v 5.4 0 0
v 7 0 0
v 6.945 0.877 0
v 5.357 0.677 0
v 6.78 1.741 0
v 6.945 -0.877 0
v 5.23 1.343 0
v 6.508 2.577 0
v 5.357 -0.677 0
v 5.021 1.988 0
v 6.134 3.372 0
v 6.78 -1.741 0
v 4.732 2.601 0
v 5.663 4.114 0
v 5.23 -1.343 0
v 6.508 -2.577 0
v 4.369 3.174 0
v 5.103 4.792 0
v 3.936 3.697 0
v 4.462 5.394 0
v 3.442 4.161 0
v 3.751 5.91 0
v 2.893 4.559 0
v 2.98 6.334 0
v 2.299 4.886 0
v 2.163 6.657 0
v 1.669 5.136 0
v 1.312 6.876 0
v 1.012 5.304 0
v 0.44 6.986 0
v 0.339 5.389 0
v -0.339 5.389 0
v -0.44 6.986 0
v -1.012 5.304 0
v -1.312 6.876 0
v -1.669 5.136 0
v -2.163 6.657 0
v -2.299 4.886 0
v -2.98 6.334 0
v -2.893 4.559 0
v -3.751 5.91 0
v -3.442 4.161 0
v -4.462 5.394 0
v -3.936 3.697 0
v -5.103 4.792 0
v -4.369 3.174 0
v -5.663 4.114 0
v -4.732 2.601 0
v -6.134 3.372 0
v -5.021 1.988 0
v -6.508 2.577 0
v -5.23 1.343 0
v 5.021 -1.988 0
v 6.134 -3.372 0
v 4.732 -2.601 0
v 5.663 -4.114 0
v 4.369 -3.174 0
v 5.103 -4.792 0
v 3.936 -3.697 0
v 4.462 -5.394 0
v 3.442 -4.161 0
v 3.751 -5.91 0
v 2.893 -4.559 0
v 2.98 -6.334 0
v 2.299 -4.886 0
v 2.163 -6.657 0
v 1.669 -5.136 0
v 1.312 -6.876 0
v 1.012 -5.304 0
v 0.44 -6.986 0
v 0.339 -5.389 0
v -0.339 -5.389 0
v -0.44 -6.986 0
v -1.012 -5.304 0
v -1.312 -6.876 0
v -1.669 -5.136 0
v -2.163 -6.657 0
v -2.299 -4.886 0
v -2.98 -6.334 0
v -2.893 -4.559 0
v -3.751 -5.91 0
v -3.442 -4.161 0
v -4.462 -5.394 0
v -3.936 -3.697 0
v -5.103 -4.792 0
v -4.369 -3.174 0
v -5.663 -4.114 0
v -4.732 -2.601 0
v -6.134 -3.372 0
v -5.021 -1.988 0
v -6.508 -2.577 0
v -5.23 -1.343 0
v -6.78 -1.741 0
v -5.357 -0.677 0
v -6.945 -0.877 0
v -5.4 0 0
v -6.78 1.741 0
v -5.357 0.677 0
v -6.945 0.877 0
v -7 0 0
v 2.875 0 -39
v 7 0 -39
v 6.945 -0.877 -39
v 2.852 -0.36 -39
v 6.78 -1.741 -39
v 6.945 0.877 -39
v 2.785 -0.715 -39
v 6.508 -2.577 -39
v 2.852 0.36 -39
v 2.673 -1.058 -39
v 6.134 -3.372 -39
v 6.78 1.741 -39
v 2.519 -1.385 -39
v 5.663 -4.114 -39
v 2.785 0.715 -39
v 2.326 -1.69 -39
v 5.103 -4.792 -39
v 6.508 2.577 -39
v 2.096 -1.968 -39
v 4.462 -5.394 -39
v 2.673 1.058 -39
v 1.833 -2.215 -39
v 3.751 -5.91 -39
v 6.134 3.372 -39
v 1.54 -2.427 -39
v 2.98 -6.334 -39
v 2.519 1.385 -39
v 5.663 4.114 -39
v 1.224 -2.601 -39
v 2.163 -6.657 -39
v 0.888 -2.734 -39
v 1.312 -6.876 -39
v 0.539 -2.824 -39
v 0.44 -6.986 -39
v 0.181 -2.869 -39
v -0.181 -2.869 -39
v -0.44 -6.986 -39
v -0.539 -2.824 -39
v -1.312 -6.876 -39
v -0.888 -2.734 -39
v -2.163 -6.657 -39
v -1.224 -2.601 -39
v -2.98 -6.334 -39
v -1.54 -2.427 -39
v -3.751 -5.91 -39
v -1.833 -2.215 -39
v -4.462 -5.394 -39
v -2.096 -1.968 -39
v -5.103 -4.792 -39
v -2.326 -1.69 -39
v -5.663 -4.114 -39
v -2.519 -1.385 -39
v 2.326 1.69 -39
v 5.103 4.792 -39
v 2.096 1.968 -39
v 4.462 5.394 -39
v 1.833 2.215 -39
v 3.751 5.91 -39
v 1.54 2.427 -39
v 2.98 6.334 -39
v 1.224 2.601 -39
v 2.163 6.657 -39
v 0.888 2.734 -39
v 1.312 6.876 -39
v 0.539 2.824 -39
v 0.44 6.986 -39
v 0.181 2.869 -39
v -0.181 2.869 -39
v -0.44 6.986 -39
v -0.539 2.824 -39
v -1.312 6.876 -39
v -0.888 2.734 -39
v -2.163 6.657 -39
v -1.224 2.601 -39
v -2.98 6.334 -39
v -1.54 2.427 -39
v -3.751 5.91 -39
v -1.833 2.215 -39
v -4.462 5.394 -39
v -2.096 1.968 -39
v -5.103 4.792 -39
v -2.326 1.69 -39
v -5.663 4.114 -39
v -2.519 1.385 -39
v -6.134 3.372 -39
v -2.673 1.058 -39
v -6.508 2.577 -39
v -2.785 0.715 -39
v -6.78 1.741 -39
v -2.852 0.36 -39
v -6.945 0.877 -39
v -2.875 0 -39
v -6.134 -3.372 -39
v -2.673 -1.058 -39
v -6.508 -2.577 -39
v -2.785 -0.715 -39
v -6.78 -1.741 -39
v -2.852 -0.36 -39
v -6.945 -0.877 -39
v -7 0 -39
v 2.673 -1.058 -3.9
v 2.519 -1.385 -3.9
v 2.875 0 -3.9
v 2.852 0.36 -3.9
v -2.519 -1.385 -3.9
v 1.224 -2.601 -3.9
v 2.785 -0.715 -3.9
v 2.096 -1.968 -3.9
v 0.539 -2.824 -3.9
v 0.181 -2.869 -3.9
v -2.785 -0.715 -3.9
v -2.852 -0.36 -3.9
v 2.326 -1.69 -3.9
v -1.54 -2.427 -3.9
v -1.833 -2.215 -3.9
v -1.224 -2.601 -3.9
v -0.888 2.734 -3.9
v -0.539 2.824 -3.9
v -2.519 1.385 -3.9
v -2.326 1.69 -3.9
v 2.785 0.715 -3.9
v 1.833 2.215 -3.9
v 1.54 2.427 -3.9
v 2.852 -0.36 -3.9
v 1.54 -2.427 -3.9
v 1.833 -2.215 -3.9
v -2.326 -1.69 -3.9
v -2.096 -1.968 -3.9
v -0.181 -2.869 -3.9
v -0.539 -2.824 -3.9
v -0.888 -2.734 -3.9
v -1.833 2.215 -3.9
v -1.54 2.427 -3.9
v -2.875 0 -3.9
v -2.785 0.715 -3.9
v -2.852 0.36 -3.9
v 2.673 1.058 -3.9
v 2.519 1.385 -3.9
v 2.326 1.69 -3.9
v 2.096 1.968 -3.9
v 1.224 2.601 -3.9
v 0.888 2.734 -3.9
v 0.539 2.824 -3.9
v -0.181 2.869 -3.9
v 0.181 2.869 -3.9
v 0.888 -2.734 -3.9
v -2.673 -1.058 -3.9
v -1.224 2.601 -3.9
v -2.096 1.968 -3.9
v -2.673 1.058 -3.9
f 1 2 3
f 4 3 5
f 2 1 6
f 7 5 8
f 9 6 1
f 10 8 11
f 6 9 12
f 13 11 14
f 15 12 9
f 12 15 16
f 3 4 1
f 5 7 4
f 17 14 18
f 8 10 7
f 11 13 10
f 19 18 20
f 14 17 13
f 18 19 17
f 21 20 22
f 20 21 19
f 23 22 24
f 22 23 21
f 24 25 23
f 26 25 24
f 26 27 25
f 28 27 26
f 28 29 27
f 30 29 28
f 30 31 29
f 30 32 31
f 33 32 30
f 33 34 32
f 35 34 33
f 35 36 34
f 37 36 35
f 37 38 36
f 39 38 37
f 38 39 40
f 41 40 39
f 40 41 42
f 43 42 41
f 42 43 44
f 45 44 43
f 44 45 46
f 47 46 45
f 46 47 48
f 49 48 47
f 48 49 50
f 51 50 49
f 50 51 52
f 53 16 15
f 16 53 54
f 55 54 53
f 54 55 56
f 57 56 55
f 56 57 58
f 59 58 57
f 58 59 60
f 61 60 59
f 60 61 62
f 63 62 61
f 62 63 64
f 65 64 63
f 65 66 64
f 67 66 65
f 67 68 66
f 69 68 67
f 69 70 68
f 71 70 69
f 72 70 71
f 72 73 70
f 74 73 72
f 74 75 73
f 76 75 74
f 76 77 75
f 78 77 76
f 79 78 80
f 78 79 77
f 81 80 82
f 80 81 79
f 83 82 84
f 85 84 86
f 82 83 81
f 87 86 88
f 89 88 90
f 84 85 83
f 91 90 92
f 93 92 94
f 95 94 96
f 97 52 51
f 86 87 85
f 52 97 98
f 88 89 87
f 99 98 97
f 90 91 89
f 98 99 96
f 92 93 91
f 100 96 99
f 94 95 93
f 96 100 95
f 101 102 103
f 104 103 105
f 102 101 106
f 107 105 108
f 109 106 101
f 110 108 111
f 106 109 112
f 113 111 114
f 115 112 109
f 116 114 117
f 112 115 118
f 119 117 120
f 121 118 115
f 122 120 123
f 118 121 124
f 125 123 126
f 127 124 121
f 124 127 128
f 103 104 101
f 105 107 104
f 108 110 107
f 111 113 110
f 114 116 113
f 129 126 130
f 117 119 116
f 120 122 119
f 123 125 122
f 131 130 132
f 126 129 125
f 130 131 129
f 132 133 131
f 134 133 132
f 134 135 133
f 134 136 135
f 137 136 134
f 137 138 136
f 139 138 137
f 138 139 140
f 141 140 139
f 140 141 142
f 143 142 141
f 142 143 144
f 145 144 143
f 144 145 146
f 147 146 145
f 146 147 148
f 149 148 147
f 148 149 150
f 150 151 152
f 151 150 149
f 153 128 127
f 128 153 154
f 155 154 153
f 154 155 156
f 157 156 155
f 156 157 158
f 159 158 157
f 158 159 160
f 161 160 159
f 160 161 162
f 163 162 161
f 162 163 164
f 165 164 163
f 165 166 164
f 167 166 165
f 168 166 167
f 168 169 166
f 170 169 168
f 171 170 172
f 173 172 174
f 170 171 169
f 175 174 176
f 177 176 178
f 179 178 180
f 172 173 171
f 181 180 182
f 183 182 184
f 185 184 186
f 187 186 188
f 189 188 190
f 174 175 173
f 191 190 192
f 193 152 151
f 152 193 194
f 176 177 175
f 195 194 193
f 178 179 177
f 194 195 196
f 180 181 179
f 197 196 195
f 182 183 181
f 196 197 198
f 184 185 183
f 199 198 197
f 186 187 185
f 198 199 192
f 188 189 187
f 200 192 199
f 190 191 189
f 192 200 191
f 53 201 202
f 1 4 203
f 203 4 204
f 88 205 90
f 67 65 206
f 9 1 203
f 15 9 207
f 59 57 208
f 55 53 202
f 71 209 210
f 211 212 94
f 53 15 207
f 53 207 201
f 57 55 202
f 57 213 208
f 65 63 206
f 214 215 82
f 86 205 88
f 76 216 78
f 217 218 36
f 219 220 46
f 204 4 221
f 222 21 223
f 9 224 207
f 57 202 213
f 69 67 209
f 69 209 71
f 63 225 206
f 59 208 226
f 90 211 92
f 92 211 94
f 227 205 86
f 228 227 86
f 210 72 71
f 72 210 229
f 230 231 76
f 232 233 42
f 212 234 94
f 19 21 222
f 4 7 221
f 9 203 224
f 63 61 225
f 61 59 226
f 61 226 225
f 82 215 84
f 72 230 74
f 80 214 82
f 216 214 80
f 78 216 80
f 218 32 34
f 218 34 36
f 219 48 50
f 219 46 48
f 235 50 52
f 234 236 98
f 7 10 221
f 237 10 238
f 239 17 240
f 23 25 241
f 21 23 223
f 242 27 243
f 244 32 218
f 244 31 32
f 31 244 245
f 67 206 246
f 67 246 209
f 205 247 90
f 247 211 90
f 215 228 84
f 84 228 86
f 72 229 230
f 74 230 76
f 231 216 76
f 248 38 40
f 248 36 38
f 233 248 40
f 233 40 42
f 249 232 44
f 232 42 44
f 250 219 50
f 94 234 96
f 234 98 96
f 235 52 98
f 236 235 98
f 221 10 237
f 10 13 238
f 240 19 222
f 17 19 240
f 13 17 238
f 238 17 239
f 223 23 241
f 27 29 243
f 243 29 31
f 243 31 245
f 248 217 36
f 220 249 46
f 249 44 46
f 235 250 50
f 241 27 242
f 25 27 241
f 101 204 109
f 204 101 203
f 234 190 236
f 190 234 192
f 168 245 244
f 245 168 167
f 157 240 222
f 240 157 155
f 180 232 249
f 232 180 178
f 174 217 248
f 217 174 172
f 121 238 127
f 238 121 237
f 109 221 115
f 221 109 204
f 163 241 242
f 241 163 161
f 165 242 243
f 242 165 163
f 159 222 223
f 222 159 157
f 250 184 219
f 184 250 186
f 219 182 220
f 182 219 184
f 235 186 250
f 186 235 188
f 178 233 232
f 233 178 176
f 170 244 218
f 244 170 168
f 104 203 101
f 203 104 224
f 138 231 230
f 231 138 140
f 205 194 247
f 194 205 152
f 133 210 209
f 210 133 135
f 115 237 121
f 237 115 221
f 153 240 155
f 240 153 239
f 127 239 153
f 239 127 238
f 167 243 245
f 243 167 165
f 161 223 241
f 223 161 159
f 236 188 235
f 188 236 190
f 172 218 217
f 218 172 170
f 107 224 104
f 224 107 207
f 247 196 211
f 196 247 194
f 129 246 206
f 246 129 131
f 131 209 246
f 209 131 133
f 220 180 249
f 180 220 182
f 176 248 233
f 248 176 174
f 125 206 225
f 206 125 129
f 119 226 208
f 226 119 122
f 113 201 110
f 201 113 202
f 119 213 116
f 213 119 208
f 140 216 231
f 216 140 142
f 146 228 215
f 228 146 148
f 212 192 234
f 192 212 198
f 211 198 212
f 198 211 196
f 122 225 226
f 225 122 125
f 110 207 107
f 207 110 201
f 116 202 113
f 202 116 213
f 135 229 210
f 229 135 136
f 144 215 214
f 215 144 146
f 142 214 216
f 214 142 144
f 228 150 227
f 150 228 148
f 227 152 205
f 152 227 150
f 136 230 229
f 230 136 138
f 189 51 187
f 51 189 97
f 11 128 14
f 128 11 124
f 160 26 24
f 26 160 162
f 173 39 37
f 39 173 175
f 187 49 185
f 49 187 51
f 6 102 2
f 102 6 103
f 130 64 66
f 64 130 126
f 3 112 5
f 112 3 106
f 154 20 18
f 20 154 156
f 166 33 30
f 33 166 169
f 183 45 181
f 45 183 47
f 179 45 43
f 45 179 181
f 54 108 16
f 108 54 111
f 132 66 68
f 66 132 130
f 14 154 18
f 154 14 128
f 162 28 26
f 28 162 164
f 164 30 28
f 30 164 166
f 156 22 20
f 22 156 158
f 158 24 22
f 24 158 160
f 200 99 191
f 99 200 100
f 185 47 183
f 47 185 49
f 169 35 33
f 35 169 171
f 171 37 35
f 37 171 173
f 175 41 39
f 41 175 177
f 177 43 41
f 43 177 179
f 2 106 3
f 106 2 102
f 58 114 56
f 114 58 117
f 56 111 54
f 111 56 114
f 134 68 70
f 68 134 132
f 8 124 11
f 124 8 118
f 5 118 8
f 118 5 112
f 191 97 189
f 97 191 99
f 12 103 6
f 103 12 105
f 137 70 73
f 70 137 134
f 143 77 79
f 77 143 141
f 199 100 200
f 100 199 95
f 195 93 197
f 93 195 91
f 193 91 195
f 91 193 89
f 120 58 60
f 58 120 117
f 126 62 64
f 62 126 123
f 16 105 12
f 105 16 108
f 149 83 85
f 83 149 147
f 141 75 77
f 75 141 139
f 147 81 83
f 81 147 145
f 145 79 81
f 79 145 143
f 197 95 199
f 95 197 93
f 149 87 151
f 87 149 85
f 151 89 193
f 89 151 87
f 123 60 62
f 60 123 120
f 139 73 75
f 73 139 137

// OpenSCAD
$fn = 50;


difference() {
	union() {
		translate(v = [0, 0, -39.0000000000]) {
			cylinder(h = 39, r = 7.0000000000);
		}
		cylinder(h = 0, r = 16.0000000000);
	}
	union() {
		translate(v = [0, 0, 0]) {
			rotate(a = [0, 0, 0]) {
				difference() {
					union() {
						#translate(v = [0, 0, -39.0000000000]) {
							cylinder(h = 39, r = 2.6000000000);
						}
						#translate(v = [0, 0, -3.9000000000]) {
							cylinder(h = 3.9000000000, r1 = 2.8750000000, r2 = 5.4000000000);
						}
						#translate(v = [0, 0, -39.0000000000]) {
							cylinder(h = 39, r = 2.8750000000);
						}
						#translate(v = [0, 0, -39.0000000000]) {
							cylinder(h = 39, r = 2.6000000000);
						}
					}
					union();
				}
			}
		}
	}
}
